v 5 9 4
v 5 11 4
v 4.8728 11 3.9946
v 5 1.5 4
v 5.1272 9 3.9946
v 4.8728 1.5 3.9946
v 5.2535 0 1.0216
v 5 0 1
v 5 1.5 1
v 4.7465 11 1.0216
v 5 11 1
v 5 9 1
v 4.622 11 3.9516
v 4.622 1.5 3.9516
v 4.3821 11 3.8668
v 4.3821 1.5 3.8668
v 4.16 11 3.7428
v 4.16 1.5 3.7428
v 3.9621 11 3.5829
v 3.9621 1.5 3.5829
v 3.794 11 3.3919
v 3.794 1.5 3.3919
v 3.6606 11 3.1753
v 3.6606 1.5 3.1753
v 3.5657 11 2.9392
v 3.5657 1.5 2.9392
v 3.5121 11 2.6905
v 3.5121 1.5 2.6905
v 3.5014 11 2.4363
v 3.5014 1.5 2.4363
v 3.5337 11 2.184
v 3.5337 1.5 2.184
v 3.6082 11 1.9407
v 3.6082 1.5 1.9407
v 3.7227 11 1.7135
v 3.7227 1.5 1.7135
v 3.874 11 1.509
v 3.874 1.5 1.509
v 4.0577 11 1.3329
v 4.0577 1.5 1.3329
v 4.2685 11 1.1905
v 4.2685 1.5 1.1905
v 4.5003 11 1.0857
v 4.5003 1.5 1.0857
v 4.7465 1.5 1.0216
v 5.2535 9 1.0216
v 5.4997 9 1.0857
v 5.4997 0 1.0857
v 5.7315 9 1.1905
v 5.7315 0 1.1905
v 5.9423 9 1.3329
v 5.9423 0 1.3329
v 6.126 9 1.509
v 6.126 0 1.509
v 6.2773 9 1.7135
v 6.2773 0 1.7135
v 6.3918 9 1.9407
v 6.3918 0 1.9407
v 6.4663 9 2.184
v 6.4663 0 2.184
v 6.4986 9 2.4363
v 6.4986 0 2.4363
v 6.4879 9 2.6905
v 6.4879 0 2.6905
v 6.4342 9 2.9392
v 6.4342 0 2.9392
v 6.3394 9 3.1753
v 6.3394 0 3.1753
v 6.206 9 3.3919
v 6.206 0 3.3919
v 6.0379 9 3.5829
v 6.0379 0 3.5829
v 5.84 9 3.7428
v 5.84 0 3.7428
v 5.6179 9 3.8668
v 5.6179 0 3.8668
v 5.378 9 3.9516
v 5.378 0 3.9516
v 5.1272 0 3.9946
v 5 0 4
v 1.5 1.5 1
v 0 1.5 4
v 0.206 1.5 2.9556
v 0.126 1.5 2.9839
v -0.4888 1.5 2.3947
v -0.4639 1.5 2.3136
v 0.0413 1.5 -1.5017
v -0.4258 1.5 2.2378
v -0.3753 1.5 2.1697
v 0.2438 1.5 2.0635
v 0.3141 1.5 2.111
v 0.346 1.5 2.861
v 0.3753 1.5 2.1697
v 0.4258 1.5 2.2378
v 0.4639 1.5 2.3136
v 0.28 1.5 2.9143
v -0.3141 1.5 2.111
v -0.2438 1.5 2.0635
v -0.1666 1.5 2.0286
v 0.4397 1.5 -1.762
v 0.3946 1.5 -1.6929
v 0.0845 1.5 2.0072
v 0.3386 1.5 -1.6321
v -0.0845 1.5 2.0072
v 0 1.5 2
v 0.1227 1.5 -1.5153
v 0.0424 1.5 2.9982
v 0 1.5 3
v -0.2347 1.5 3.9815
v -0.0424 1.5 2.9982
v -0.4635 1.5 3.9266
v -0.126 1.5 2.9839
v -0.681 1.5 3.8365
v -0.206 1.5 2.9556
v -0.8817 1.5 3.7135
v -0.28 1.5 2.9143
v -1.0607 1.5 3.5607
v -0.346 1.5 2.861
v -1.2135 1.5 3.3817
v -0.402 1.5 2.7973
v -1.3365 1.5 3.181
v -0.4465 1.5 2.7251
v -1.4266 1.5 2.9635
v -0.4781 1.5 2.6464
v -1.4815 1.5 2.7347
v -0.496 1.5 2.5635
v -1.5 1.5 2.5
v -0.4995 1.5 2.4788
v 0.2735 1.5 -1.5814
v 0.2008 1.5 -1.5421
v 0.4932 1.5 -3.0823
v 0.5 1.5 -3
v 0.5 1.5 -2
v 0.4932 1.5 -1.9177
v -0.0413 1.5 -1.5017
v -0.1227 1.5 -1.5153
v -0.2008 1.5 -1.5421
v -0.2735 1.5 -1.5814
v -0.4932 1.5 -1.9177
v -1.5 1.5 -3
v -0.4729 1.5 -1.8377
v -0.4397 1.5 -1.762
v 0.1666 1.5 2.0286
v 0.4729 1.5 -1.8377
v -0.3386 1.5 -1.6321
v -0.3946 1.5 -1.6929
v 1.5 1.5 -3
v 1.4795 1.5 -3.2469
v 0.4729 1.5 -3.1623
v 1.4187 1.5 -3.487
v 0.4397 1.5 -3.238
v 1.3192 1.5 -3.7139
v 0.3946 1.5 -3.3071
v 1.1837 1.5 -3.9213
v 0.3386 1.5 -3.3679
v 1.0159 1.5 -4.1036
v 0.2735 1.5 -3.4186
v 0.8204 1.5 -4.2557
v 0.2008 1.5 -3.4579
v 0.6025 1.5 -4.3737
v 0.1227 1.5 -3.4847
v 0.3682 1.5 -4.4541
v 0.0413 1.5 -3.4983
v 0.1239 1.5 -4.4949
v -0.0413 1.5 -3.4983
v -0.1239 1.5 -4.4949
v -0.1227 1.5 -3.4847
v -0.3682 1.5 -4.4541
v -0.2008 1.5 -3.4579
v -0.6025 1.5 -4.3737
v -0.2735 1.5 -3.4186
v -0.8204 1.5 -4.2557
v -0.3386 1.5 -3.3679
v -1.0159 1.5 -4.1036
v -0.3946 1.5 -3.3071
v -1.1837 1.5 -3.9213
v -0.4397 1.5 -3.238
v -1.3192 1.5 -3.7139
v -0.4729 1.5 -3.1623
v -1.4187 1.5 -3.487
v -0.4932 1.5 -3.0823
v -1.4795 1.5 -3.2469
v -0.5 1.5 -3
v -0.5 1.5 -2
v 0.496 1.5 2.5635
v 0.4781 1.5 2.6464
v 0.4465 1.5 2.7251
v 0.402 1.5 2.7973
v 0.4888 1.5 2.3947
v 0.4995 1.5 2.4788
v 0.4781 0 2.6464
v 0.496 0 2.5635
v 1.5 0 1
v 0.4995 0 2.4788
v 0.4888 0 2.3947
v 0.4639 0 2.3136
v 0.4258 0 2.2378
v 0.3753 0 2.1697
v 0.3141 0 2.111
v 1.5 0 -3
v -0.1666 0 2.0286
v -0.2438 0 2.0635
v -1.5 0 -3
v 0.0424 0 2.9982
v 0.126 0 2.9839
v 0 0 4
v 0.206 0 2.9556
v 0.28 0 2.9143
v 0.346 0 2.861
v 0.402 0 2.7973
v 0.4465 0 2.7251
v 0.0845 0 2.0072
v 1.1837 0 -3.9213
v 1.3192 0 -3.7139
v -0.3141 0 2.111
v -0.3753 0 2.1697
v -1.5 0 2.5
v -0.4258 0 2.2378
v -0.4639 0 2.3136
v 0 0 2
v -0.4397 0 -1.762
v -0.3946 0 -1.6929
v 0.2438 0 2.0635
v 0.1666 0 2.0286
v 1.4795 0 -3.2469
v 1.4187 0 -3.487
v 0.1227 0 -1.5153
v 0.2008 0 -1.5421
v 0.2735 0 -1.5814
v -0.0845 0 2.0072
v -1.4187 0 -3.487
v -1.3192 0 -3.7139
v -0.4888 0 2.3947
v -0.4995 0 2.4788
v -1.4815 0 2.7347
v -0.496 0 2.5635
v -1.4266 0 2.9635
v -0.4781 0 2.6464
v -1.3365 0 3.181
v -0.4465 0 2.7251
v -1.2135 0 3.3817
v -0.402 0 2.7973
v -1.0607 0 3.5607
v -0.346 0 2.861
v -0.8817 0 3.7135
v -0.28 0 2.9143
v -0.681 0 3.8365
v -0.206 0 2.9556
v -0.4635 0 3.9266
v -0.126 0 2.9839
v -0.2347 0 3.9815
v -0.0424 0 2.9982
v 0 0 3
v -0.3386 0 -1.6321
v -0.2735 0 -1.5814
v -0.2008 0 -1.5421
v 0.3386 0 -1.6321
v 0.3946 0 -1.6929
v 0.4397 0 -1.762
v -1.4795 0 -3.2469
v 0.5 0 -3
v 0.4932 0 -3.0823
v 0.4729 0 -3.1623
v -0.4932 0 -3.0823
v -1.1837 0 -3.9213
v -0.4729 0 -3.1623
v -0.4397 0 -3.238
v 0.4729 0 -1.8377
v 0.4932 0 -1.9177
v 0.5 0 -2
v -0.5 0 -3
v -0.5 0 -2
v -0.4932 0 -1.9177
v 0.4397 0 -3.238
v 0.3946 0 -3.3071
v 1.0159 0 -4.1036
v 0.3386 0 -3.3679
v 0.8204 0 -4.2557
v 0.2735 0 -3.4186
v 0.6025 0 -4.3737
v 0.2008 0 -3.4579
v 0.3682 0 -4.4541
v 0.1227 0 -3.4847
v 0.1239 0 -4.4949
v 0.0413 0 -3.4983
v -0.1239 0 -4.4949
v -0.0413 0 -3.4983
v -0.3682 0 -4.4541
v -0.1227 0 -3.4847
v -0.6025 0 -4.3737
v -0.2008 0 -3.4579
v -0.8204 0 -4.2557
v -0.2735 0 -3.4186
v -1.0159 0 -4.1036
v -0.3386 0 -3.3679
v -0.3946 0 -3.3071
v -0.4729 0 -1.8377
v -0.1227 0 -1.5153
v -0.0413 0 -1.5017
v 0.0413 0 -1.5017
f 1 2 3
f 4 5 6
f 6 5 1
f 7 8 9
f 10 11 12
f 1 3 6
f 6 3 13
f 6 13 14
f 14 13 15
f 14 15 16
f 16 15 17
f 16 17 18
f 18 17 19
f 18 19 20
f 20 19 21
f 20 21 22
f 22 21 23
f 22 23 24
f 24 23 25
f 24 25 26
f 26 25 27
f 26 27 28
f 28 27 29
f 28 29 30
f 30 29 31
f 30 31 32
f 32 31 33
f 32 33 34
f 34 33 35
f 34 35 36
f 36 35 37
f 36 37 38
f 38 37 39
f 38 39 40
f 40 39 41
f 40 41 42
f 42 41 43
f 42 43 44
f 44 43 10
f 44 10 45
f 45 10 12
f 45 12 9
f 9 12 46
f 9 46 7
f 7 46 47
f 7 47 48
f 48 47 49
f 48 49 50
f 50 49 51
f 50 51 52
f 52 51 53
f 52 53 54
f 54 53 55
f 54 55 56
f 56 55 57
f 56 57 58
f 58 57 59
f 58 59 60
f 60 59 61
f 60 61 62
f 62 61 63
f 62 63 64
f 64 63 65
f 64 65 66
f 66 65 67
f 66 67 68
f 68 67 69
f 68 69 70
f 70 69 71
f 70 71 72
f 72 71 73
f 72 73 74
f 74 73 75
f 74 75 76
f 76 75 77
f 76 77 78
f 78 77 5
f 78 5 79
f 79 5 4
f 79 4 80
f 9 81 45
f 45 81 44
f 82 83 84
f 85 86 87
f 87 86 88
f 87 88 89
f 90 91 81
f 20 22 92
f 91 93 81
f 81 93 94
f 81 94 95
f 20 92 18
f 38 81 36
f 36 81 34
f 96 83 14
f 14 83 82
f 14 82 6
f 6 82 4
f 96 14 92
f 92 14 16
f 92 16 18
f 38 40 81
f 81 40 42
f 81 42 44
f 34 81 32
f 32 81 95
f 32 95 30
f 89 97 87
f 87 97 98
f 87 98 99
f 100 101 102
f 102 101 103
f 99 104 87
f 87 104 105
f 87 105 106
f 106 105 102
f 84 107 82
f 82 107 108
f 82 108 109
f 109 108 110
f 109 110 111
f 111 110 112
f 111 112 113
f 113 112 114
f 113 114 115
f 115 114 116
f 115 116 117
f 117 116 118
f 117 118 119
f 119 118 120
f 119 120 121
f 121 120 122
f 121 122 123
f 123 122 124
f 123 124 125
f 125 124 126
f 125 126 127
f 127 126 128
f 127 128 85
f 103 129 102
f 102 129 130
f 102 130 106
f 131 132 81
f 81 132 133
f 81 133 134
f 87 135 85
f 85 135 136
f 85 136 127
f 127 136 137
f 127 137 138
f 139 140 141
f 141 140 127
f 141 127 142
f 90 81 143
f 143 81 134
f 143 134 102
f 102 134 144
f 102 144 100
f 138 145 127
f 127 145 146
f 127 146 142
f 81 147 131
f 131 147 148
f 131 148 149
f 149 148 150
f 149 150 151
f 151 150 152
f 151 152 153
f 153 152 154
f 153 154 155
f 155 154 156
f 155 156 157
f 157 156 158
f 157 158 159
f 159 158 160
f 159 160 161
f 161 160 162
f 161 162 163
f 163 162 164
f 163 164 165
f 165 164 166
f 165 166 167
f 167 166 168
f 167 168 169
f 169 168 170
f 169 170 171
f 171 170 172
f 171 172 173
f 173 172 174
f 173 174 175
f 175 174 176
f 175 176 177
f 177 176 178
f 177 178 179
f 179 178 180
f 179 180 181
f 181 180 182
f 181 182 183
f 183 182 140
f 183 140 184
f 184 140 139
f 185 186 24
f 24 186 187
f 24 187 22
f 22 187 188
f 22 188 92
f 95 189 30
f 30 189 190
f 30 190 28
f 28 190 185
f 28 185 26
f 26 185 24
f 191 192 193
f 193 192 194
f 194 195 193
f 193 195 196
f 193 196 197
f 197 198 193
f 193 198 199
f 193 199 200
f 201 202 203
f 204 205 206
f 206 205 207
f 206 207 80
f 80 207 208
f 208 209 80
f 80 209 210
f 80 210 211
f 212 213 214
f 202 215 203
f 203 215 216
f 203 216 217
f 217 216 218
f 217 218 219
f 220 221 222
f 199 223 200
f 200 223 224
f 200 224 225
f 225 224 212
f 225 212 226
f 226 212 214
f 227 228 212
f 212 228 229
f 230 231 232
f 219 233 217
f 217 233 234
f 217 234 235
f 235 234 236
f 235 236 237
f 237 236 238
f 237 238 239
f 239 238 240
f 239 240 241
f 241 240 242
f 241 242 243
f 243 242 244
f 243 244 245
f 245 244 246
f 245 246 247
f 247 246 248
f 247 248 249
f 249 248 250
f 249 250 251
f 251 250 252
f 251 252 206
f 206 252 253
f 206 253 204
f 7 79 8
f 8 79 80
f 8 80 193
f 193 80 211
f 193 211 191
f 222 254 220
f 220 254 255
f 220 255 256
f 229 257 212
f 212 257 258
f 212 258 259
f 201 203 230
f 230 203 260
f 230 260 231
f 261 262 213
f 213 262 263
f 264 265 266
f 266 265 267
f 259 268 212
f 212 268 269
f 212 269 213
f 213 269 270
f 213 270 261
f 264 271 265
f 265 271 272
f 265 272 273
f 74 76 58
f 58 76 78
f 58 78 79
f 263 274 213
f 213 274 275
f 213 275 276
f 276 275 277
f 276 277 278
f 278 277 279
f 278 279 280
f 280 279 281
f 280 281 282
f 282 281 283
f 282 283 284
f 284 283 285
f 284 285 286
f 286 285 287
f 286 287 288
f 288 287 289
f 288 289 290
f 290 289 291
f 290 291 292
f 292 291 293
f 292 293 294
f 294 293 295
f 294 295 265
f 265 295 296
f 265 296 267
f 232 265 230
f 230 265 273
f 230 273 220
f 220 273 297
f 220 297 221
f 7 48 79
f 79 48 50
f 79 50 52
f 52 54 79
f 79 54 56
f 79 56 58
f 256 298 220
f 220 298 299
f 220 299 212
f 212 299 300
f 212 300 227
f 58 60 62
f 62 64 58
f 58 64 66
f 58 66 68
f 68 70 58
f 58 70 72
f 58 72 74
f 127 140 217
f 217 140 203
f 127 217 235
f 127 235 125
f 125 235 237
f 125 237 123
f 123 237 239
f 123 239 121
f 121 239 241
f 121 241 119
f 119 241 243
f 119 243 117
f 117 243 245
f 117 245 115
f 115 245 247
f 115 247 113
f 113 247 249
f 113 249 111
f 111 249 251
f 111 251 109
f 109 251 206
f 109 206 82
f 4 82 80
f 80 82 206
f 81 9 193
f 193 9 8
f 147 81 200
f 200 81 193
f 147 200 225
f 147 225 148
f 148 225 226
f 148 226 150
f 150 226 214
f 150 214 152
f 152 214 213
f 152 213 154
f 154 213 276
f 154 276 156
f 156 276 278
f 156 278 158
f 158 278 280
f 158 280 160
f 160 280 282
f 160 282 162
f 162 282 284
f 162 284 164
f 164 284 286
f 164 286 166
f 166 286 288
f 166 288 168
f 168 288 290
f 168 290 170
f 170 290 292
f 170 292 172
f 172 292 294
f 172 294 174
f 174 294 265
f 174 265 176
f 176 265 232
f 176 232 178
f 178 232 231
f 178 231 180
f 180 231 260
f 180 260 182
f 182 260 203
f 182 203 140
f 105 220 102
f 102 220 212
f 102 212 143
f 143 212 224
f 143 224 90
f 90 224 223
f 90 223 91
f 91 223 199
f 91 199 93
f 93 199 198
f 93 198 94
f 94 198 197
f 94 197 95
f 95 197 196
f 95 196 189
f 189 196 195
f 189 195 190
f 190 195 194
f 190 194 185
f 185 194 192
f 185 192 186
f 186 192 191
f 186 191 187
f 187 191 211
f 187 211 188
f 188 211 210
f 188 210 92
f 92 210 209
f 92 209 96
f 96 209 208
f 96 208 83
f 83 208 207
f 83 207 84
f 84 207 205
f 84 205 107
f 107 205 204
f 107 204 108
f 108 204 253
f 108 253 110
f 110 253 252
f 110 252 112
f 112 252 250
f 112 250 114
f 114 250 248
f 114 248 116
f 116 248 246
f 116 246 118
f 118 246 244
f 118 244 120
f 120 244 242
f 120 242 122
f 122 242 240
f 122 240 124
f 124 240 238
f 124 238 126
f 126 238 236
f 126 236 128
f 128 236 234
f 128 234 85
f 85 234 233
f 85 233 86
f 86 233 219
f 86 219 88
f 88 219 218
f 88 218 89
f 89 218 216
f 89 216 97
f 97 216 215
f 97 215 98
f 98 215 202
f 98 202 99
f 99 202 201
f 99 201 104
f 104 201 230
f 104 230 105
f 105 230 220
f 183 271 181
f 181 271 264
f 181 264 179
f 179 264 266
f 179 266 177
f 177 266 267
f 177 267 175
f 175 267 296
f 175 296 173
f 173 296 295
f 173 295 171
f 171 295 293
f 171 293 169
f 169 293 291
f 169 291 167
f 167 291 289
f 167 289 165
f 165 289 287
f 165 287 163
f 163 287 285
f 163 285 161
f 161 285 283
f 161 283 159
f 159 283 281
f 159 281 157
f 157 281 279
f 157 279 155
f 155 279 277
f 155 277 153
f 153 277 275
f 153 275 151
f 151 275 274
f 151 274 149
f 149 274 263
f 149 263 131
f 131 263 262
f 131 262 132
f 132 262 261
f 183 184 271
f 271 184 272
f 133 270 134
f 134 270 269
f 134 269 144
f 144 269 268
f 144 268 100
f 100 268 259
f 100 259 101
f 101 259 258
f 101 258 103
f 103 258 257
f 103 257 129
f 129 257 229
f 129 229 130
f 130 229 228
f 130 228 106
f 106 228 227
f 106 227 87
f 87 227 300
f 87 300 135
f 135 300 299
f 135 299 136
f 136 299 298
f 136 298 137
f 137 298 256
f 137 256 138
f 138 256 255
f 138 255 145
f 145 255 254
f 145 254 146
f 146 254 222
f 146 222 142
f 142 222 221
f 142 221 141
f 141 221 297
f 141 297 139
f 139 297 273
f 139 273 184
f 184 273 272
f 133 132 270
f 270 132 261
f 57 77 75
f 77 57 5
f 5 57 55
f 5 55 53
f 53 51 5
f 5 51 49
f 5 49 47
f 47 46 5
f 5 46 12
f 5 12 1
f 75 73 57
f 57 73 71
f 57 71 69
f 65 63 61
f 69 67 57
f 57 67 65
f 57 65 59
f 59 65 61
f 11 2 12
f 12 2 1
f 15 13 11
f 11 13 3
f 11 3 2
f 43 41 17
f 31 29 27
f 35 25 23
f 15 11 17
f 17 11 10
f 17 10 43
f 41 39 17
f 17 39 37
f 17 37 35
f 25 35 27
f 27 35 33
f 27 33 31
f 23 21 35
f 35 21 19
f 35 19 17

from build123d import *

# Parameters (mm, degrees)
SKETCH1_R           = 0.5
BOSS_EXTRUDE1_DEPTH = 1.5
SKETCH2_R           = 1.5
BOSS_EXTRUDE2_DEPTH = 12
SKETCH3_R           = 0.5
BOSS_EXTRUDE3_DEPTH = 1.5
SKETCH6_W           = 11.188914533
SKETCH6_H           = 9.773285444
CUT_EXTRUDE4_DEPTH  = 6
BOSS_EXTRUDE4_DEPTH = 2


with BuildPart() as part:
    # Sketch1 → Boss-Extrude1 (new body)
    with BuildSketch(Plane(origin=(0, 0, 0), x_dir=(1, 0, 0), z_dir=(0, 1, 0))):
        with BuildLine():
            Line((5, -1), (1.5, -1))
            Line((1.5, -1), (1.5, 2.5))
            Line((1.5, 2.5), (1.5, 3))
            ThreePointArc((1.5, 3), (0, 4.5), (-1.5, 3))
            Line((-1.5, 3), (-1.5, 2.5))
            Line((-1.5, 2.5), (-1.5, -2.5))
            ThreePointArc((-1.5, -2.5), (-1.060660172, -3.560660172), (0, -4))
            Line((0, -4), (5, -4))
            ThreePointArc((5, -4), (6.5, -2.5), (5, -1))
        make_face()
        with Locations((0, -2.5)):
            Circle(SKETCH1_R, mode=Mode.SUBTRACT)
        with BuildLine():
            Line((-0.5, 3), (-0.5, 2))
            ThreePointArc((-0.5, 2), (0, 1.5), (0.5, 2))
            Line((0.5, 2), (0.5, 3))
            ThreePointArc((0.5, 3), (0, 3.5), (-0.5, 3))
        make_face(mode=Mode.SUBTRACT)
    extrude(amount=BOSS_EXTRUDE1_DEPTH)

    # Sketch2 → Boss-Extrude2 (add)
    with BuildSketch(Plane(origin=(0, 1.5, 0), x_dir=(1, 0, 0), z_dir=(0, 1, 0))):
        with Locations((5, -2.5)):
            Circle(SKETCH2_R)
    extrude(amount=BOSS_EXTRUDE2_DEPTH)

    # Sketch3 → Boss-Extrude3 (add)
    with BuildSketch(Plane(origin=(0, 13.5, 0), x_dir=(1, 0, 0), z_dir=(0, 1, 0))):
        with BuildLine():
            Line((1.5, -1), (5, -1))
            ThreePointArc((5, -1), (6.5, -2.5), (5, -4))
            Line((5, -4), (0, -4))
            ThreePointArc((0, -4), (-1.060660172, -3.560660172), (-1.5, -2.5))
            Line((-1.5, -2.5), (-1.5, 2.5))
            Line((-1.5, 2.5), (-1.5, 3))
            ThreePointArc((-1.5, 3), (0, 4.5), (1.5, 3))
            Line((1.5, 3), (1.5, 2.5))
            Line((1.5, 2.5), (1.5, -1))
        make_face()
        with Locations((0, -2.5)):
            Circle(SKETCH3_R, mode=Mode.SUBTRACT)
        with BuildLine():
            Line((-0.5, 3), (-0.5, 2))
            ThreePointArc((-0.5, 2), (0, 1.5), (0.5, 2))
            Line((0.5, 2), (0.5, 3))
            ThreePointArc((0.5, 3), (0, 3.5), (-0.5, 3))
        make_face(mode=Mode.SUBTRACT)
    extrude(amount=BOSS_EXTRUDE3_DEPTH)

    # Sketch6 → Cut-Extrude4 (cut)
    with BuildSketch(Plane(origin=(0, 15, 0), x_dir=(1, 0, 0), z_dir=(0, 1, 0))):
        with Locations((1.642455456, 0.222776364)):
            Rectangle(SKETCH6_W, SKETCH6_H)
    extrude(amount=-CUT_EXTRUDE4_DEPTH, mode=Mode.SUBTRACT)

    # Sketch7 → Boss-Extrude4 (add)
    with BuildSketch(Plane(origin=(0, 9, 0), x_dir=(1, 0, 0), z_dir=(0, 1, 0))):
        with BuildLine():
            Line((5, -1), (5, -4))
            ThreePointArc((5, -4), (3.5, -2.5), (5, -1))
        make_face()
    extrude(amount=BOSS_EXTRUDE4_DEPTH)


solid = part.part
